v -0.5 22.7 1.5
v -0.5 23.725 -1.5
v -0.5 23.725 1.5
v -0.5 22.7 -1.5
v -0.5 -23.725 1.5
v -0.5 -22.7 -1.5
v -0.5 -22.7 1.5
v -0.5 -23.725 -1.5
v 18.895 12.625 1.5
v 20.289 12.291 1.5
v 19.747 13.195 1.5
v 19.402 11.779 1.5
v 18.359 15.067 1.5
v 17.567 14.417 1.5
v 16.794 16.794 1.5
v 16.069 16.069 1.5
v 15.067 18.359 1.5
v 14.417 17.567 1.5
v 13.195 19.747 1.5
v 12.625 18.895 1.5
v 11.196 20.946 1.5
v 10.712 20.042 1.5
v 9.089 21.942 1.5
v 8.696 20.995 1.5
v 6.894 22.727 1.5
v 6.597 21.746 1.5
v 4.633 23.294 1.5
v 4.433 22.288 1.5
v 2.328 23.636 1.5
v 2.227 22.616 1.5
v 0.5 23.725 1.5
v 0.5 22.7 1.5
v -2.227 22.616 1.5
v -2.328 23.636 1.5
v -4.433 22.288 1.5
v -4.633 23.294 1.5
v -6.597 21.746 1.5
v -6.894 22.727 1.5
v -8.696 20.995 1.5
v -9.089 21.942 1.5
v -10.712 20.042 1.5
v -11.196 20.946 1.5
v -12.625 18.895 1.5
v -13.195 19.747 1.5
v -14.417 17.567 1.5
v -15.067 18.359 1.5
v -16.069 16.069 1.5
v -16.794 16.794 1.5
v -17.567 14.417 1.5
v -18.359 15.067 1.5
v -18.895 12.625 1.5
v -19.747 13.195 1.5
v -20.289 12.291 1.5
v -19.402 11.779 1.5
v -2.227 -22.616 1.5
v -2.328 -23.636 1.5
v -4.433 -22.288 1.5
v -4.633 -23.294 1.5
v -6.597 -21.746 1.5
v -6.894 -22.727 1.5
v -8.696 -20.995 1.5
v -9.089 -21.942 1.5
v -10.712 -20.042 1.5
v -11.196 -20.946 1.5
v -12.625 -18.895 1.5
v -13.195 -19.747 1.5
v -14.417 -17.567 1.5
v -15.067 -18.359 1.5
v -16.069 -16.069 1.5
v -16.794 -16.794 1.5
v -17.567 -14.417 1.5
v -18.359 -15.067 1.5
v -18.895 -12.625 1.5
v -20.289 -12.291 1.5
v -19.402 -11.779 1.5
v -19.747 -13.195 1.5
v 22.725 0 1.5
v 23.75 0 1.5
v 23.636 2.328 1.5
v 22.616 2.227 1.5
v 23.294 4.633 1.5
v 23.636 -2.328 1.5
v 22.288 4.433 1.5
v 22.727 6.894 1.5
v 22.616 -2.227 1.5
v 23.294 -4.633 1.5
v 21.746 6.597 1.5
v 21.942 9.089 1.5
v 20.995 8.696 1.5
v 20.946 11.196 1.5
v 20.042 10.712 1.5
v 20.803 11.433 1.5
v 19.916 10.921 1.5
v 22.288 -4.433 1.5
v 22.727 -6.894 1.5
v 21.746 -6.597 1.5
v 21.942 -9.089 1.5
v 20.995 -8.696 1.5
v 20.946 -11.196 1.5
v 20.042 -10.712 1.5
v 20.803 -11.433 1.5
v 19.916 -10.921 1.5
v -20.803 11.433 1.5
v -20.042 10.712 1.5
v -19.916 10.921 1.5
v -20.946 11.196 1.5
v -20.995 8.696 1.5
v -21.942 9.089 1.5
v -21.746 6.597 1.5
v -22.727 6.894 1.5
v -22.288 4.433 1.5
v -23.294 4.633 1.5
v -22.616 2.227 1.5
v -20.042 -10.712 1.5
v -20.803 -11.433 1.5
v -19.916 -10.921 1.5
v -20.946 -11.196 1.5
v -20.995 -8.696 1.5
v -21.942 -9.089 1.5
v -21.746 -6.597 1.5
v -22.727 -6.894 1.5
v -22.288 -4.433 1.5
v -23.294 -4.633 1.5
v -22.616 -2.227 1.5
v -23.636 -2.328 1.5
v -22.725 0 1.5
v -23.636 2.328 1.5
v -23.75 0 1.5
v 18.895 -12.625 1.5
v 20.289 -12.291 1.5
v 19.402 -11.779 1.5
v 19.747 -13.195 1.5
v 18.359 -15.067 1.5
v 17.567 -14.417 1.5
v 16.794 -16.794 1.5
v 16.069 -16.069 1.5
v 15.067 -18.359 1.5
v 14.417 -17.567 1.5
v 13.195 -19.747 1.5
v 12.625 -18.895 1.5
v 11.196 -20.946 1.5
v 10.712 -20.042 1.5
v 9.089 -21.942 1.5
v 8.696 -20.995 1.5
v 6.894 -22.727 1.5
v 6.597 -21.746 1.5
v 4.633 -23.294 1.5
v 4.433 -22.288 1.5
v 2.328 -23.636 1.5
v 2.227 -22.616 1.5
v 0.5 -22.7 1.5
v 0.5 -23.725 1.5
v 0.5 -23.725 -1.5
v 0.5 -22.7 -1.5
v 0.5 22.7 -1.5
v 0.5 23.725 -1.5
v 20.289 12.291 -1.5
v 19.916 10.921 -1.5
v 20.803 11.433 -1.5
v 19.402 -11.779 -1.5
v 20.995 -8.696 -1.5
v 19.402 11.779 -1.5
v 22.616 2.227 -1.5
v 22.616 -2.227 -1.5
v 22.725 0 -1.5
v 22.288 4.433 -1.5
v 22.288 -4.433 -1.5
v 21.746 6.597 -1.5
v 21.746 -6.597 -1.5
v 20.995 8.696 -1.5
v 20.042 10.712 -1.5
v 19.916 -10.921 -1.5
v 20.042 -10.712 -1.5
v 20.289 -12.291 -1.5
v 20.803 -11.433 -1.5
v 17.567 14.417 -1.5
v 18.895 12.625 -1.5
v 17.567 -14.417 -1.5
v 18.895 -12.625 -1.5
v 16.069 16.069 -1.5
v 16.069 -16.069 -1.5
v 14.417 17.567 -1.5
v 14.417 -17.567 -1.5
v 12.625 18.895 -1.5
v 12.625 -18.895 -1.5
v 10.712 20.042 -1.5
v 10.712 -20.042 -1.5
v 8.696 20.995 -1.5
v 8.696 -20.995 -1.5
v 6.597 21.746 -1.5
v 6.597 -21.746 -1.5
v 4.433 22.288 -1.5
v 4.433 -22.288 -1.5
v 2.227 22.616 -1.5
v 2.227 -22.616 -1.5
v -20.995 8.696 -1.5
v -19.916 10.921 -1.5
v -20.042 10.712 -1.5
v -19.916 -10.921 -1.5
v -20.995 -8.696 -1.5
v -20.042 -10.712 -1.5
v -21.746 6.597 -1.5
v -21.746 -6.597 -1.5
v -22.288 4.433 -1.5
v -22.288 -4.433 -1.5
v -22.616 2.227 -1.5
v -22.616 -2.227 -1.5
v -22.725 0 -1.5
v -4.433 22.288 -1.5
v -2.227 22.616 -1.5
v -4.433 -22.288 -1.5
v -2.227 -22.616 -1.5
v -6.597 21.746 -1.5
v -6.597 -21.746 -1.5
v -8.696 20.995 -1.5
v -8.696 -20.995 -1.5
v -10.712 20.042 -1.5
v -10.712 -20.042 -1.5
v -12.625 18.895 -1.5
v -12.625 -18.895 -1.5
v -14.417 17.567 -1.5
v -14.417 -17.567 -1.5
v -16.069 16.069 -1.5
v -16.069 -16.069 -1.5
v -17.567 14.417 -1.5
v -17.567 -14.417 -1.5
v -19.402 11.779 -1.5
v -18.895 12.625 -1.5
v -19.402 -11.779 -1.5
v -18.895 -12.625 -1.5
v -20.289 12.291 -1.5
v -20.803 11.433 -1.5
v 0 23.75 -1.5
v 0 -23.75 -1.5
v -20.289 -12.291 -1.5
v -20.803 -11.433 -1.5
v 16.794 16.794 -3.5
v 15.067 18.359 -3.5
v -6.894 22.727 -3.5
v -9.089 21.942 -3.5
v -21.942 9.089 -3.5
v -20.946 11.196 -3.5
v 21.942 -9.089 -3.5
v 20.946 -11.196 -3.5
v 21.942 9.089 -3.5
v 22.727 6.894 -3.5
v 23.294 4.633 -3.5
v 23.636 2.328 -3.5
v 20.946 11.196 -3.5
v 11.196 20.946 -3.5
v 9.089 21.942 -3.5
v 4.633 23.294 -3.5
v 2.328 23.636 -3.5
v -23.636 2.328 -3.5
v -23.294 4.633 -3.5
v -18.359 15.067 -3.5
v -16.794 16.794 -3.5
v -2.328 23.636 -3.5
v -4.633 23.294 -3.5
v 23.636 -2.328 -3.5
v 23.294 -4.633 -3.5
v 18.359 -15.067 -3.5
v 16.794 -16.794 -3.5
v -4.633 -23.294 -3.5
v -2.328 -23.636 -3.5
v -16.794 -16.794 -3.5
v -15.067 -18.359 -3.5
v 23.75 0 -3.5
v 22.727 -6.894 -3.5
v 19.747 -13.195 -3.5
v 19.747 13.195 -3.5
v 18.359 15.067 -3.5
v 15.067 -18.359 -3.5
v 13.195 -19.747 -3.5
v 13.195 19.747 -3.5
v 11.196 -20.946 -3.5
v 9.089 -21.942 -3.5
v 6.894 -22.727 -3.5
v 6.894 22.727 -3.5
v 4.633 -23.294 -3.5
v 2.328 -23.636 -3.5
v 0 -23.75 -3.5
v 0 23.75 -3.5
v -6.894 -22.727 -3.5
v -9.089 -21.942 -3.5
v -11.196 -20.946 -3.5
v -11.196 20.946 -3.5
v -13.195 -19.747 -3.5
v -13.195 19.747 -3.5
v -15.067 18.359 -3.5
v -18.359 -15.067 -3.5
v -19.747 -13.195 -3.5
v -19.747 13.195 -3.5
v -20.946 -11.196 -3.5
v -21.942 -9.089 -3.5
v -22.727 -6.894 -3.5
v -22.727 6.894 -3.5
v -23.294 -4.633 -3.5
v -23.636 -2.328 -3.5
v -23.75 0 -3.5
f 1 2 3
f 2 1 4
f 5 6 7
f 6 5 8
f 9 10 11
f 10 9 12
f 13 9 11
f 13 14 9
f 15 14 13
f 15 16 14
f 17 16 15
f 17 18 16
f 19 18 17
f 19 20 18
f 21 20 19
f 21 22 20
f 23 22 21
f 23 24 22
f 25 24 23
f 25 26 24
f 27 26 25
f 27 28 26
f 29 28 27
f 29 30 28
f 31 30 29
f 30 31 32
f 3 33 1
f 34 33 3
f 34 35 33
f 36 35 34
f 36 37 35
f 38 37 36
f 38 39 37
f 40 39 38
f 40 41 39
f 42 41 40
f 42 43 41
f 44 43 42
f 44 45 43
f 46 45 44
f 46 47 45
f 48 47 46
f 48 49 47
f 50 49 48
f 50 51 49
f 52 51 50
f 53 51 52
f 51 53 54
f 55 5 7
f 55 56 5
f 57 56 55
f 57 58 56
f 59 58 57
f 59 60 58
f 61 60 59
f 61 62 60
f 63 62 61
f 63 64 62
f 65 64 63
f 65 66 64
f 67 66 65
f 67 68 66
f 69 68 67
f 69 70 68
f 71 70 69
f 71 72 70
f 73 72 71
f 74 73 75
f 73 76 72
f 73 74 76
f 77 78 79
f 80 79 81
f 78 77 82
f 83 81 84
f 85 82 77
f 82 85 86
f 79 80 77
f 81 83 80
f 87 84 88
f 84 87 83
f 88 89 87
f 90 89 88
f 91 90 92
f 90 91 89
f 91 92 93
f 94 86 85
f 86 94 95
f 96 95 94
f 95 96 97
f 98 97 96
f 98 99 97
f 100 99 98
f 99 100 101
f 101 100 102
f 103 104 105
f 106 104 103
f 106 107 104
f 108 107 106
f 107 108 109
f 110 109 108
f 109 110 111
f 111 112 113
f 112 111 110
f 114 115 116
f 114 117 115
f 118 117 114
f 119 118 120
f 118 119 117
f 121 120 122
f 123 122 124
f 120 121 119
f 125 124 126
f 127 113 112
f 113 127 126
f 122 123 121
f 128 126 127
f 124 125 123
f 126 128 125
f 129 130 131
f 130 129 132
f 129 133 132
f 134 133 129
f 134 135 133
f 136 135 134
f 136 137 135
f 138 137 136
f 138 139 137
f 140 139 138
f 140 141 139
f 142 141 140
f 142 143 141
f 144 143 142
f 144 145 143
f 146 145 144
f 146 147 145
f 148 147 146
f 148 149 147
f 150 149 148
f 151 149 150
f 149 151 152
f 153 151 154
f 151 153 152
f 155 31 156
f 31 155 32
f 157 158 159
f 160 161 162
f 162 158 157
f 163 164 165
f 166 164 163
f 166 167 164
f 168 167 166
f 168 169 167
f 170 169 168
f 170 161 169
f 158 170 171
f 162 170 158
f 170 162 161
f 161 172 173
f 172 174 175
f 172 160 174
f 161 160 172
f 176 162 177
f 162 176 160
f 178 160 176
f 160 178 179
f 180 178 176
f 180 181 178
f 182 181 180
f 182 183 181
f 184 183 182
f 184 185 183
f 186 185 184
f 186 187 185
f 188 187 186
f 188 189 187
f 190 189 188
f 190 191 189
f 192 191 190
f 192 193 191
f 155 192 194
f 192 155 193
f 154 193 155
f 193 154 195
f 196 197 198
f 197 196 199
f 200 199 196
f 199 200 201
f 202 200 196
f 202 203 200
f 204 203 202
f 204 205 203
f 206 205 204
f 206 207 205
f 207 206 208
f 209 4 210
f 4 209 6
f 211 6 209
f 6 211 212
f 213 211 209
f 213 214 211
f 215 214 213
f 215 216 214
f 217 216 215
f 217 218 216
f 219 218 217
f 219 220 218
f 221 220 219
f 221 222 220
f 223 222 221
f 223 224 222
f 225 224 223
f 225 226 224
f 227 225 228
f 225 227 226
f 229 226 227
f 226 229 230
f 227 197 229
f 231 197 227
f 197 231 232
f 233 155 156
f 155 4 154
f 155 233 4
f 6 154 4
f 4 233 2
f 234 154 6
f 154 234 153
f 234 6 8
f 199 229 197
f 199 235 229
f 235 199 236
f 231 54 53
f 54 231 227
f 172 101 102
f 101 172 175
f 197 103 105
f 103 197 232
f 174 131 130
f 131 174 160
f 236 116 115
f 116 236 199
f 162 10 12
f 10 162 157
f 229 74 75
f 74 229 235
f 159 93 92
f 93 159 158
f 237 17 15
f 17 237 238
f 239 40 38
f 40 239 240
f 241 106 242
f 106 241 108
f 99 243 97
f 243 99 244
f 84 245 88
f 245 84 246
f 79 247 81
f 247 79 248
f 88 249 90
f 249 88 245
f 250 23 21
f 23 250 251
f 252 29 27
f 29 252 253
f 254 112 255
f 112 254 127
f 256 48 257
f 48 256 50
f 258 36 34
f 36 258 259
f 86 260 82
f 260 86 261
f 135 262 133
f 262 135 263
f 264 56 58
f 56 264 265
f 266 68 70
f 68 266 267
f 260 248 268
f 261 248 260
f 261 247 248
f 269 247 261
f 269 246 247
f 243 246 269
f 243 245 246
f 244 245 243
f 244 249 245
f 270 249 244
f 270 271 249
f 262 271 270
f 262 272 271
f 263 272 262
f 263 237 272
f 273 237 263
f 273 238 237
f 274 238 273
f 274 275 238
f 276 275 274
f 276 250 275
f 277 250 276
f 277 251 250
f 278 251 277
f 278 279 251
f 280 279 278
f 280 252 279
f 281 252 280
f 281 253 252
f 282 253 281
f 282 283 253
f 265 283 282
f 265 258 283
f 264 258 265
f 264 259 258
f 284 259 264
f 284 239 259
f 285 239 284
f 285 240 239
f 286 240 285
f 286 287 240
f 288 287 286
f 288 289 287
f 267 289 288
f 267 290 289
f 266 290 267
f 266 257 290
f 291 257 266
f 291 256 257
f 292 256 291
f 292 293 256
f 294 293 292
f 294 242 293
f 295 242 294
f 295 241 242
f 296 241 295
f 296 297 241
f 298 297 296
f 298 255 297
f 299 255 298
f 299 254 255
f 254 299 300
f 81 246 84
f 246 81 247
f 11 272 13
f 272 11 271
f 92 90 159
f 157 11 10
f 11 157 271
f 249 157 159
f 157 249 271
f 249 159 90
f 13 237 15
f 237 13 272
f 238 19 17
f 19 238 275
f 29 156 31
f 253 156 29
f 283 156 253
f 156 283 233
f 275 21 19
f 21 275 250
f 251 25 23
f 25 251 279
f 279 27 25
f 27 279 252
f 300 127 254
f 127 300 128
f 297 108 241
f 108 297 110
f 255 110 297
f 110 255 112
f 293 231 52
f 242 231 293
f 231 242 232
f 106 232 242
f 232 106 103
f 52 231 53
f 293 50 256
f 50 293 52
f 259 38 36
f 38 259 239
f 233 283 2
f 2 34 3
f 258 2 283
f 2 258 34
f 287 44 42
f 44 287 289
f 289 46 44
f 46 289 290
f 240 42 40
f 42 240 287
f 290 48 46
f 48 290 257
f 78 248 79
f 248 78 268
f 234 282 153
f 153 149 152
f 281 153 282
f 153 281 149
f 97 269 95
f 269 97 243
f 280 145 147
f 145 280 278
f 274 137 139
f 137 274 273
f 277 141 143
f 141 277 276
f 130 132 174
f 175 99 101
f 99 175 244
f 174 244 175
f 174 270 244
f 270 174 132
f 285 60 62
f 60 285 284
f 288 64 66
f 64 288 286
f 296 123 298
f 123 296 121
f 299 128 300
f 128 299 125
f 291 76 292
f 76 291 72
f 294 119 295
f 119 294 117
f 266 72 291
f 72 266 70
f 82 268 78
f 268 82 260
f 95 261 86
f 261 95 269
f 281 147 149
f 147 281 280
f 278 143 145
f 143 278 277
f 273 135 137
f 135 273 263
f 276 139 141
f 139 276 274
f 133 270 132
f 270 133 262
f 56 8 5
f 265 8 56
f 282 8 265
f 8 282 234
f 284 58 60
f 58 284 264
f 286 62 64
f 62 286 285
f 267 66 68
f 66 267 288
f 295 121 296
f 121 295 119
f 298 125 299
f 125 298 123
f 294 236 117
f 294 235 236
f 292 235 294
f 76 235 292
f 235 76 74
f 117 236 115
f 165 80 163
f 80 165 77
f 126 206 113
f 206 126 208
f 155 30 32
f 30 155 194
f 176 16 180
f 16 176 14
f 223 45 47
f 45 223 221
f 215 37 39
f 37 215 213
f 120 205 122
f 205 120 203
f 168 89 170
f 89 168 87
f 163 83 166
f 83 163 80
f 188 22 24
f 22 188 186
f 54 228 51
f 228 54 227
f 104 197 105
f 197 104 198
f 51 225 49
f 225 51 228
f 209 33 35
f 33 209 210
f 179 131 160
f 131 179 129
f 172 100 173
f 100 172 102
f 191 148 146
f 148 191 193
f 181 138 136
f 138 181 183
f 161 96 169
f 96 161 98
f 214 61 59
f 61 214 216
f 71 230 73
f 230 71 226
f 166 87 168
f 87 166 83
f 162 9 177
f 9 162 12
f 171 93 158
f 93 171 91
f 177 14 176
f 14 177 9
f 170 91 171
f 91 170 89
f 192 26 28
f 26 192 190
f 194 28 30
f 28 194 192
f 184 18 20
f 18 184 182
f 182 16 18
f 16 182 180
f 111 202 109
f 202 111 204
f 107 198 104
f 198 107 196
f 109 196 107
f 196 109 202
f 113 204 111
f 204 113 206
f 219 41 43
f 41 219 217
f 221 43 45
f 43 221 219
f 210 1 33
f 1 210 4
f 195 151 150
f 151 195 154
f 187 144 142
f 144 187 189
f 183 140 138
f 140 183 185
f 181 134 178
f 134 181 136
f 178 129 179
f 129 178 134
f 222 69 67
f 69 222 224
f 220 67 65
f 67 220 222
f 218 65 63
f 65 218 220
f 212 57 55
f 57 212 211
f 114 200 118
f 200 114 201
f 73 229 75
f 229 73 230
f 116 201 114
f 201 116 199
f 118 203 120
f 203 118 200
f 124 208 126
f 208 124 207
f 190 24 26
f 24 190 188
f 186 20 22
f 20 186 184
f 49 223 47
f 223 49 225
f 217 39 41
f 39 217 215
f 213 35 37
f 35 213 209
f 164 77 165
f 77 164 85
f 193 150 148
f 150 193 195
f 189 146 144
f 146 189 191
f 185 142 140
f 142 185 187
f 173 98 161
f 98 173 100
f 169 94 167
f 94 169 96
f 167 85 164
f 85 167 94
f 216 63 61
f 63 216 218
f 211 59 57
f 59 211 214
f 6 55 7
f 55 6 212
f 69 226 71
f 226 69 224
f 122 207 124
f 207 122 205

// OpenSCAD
// industar-lens-cap
// cap for the industar 69 half frame lens
// (C) 2020
// cy384
// licensed under the GPL v2, see LICENSE file
$fn = 64;

fudge_factor = 0.0;

module cap()
{
	rotate([0, 180, 0])
	{
		difference()
		{
			translate([0, 0, 21])
			{
                cylinder(h=35, r1=6, r=6, center=true);
			}

			cylinder(h = 39.12, r = (1.588/2) + fudge_factor, center = false);
		}
	}
}

difference()
{
    translate([0,0,-1]) cylinder(r=(45.5/2)+1, h=3+2, center=true);
	cylinder(r=45.45/2, h=3, center=true);
    
	for (rot = [0, 60, 120])
	{
		rotate([0,0,rot]) cube([1,100,3], center = true);
	}
}
